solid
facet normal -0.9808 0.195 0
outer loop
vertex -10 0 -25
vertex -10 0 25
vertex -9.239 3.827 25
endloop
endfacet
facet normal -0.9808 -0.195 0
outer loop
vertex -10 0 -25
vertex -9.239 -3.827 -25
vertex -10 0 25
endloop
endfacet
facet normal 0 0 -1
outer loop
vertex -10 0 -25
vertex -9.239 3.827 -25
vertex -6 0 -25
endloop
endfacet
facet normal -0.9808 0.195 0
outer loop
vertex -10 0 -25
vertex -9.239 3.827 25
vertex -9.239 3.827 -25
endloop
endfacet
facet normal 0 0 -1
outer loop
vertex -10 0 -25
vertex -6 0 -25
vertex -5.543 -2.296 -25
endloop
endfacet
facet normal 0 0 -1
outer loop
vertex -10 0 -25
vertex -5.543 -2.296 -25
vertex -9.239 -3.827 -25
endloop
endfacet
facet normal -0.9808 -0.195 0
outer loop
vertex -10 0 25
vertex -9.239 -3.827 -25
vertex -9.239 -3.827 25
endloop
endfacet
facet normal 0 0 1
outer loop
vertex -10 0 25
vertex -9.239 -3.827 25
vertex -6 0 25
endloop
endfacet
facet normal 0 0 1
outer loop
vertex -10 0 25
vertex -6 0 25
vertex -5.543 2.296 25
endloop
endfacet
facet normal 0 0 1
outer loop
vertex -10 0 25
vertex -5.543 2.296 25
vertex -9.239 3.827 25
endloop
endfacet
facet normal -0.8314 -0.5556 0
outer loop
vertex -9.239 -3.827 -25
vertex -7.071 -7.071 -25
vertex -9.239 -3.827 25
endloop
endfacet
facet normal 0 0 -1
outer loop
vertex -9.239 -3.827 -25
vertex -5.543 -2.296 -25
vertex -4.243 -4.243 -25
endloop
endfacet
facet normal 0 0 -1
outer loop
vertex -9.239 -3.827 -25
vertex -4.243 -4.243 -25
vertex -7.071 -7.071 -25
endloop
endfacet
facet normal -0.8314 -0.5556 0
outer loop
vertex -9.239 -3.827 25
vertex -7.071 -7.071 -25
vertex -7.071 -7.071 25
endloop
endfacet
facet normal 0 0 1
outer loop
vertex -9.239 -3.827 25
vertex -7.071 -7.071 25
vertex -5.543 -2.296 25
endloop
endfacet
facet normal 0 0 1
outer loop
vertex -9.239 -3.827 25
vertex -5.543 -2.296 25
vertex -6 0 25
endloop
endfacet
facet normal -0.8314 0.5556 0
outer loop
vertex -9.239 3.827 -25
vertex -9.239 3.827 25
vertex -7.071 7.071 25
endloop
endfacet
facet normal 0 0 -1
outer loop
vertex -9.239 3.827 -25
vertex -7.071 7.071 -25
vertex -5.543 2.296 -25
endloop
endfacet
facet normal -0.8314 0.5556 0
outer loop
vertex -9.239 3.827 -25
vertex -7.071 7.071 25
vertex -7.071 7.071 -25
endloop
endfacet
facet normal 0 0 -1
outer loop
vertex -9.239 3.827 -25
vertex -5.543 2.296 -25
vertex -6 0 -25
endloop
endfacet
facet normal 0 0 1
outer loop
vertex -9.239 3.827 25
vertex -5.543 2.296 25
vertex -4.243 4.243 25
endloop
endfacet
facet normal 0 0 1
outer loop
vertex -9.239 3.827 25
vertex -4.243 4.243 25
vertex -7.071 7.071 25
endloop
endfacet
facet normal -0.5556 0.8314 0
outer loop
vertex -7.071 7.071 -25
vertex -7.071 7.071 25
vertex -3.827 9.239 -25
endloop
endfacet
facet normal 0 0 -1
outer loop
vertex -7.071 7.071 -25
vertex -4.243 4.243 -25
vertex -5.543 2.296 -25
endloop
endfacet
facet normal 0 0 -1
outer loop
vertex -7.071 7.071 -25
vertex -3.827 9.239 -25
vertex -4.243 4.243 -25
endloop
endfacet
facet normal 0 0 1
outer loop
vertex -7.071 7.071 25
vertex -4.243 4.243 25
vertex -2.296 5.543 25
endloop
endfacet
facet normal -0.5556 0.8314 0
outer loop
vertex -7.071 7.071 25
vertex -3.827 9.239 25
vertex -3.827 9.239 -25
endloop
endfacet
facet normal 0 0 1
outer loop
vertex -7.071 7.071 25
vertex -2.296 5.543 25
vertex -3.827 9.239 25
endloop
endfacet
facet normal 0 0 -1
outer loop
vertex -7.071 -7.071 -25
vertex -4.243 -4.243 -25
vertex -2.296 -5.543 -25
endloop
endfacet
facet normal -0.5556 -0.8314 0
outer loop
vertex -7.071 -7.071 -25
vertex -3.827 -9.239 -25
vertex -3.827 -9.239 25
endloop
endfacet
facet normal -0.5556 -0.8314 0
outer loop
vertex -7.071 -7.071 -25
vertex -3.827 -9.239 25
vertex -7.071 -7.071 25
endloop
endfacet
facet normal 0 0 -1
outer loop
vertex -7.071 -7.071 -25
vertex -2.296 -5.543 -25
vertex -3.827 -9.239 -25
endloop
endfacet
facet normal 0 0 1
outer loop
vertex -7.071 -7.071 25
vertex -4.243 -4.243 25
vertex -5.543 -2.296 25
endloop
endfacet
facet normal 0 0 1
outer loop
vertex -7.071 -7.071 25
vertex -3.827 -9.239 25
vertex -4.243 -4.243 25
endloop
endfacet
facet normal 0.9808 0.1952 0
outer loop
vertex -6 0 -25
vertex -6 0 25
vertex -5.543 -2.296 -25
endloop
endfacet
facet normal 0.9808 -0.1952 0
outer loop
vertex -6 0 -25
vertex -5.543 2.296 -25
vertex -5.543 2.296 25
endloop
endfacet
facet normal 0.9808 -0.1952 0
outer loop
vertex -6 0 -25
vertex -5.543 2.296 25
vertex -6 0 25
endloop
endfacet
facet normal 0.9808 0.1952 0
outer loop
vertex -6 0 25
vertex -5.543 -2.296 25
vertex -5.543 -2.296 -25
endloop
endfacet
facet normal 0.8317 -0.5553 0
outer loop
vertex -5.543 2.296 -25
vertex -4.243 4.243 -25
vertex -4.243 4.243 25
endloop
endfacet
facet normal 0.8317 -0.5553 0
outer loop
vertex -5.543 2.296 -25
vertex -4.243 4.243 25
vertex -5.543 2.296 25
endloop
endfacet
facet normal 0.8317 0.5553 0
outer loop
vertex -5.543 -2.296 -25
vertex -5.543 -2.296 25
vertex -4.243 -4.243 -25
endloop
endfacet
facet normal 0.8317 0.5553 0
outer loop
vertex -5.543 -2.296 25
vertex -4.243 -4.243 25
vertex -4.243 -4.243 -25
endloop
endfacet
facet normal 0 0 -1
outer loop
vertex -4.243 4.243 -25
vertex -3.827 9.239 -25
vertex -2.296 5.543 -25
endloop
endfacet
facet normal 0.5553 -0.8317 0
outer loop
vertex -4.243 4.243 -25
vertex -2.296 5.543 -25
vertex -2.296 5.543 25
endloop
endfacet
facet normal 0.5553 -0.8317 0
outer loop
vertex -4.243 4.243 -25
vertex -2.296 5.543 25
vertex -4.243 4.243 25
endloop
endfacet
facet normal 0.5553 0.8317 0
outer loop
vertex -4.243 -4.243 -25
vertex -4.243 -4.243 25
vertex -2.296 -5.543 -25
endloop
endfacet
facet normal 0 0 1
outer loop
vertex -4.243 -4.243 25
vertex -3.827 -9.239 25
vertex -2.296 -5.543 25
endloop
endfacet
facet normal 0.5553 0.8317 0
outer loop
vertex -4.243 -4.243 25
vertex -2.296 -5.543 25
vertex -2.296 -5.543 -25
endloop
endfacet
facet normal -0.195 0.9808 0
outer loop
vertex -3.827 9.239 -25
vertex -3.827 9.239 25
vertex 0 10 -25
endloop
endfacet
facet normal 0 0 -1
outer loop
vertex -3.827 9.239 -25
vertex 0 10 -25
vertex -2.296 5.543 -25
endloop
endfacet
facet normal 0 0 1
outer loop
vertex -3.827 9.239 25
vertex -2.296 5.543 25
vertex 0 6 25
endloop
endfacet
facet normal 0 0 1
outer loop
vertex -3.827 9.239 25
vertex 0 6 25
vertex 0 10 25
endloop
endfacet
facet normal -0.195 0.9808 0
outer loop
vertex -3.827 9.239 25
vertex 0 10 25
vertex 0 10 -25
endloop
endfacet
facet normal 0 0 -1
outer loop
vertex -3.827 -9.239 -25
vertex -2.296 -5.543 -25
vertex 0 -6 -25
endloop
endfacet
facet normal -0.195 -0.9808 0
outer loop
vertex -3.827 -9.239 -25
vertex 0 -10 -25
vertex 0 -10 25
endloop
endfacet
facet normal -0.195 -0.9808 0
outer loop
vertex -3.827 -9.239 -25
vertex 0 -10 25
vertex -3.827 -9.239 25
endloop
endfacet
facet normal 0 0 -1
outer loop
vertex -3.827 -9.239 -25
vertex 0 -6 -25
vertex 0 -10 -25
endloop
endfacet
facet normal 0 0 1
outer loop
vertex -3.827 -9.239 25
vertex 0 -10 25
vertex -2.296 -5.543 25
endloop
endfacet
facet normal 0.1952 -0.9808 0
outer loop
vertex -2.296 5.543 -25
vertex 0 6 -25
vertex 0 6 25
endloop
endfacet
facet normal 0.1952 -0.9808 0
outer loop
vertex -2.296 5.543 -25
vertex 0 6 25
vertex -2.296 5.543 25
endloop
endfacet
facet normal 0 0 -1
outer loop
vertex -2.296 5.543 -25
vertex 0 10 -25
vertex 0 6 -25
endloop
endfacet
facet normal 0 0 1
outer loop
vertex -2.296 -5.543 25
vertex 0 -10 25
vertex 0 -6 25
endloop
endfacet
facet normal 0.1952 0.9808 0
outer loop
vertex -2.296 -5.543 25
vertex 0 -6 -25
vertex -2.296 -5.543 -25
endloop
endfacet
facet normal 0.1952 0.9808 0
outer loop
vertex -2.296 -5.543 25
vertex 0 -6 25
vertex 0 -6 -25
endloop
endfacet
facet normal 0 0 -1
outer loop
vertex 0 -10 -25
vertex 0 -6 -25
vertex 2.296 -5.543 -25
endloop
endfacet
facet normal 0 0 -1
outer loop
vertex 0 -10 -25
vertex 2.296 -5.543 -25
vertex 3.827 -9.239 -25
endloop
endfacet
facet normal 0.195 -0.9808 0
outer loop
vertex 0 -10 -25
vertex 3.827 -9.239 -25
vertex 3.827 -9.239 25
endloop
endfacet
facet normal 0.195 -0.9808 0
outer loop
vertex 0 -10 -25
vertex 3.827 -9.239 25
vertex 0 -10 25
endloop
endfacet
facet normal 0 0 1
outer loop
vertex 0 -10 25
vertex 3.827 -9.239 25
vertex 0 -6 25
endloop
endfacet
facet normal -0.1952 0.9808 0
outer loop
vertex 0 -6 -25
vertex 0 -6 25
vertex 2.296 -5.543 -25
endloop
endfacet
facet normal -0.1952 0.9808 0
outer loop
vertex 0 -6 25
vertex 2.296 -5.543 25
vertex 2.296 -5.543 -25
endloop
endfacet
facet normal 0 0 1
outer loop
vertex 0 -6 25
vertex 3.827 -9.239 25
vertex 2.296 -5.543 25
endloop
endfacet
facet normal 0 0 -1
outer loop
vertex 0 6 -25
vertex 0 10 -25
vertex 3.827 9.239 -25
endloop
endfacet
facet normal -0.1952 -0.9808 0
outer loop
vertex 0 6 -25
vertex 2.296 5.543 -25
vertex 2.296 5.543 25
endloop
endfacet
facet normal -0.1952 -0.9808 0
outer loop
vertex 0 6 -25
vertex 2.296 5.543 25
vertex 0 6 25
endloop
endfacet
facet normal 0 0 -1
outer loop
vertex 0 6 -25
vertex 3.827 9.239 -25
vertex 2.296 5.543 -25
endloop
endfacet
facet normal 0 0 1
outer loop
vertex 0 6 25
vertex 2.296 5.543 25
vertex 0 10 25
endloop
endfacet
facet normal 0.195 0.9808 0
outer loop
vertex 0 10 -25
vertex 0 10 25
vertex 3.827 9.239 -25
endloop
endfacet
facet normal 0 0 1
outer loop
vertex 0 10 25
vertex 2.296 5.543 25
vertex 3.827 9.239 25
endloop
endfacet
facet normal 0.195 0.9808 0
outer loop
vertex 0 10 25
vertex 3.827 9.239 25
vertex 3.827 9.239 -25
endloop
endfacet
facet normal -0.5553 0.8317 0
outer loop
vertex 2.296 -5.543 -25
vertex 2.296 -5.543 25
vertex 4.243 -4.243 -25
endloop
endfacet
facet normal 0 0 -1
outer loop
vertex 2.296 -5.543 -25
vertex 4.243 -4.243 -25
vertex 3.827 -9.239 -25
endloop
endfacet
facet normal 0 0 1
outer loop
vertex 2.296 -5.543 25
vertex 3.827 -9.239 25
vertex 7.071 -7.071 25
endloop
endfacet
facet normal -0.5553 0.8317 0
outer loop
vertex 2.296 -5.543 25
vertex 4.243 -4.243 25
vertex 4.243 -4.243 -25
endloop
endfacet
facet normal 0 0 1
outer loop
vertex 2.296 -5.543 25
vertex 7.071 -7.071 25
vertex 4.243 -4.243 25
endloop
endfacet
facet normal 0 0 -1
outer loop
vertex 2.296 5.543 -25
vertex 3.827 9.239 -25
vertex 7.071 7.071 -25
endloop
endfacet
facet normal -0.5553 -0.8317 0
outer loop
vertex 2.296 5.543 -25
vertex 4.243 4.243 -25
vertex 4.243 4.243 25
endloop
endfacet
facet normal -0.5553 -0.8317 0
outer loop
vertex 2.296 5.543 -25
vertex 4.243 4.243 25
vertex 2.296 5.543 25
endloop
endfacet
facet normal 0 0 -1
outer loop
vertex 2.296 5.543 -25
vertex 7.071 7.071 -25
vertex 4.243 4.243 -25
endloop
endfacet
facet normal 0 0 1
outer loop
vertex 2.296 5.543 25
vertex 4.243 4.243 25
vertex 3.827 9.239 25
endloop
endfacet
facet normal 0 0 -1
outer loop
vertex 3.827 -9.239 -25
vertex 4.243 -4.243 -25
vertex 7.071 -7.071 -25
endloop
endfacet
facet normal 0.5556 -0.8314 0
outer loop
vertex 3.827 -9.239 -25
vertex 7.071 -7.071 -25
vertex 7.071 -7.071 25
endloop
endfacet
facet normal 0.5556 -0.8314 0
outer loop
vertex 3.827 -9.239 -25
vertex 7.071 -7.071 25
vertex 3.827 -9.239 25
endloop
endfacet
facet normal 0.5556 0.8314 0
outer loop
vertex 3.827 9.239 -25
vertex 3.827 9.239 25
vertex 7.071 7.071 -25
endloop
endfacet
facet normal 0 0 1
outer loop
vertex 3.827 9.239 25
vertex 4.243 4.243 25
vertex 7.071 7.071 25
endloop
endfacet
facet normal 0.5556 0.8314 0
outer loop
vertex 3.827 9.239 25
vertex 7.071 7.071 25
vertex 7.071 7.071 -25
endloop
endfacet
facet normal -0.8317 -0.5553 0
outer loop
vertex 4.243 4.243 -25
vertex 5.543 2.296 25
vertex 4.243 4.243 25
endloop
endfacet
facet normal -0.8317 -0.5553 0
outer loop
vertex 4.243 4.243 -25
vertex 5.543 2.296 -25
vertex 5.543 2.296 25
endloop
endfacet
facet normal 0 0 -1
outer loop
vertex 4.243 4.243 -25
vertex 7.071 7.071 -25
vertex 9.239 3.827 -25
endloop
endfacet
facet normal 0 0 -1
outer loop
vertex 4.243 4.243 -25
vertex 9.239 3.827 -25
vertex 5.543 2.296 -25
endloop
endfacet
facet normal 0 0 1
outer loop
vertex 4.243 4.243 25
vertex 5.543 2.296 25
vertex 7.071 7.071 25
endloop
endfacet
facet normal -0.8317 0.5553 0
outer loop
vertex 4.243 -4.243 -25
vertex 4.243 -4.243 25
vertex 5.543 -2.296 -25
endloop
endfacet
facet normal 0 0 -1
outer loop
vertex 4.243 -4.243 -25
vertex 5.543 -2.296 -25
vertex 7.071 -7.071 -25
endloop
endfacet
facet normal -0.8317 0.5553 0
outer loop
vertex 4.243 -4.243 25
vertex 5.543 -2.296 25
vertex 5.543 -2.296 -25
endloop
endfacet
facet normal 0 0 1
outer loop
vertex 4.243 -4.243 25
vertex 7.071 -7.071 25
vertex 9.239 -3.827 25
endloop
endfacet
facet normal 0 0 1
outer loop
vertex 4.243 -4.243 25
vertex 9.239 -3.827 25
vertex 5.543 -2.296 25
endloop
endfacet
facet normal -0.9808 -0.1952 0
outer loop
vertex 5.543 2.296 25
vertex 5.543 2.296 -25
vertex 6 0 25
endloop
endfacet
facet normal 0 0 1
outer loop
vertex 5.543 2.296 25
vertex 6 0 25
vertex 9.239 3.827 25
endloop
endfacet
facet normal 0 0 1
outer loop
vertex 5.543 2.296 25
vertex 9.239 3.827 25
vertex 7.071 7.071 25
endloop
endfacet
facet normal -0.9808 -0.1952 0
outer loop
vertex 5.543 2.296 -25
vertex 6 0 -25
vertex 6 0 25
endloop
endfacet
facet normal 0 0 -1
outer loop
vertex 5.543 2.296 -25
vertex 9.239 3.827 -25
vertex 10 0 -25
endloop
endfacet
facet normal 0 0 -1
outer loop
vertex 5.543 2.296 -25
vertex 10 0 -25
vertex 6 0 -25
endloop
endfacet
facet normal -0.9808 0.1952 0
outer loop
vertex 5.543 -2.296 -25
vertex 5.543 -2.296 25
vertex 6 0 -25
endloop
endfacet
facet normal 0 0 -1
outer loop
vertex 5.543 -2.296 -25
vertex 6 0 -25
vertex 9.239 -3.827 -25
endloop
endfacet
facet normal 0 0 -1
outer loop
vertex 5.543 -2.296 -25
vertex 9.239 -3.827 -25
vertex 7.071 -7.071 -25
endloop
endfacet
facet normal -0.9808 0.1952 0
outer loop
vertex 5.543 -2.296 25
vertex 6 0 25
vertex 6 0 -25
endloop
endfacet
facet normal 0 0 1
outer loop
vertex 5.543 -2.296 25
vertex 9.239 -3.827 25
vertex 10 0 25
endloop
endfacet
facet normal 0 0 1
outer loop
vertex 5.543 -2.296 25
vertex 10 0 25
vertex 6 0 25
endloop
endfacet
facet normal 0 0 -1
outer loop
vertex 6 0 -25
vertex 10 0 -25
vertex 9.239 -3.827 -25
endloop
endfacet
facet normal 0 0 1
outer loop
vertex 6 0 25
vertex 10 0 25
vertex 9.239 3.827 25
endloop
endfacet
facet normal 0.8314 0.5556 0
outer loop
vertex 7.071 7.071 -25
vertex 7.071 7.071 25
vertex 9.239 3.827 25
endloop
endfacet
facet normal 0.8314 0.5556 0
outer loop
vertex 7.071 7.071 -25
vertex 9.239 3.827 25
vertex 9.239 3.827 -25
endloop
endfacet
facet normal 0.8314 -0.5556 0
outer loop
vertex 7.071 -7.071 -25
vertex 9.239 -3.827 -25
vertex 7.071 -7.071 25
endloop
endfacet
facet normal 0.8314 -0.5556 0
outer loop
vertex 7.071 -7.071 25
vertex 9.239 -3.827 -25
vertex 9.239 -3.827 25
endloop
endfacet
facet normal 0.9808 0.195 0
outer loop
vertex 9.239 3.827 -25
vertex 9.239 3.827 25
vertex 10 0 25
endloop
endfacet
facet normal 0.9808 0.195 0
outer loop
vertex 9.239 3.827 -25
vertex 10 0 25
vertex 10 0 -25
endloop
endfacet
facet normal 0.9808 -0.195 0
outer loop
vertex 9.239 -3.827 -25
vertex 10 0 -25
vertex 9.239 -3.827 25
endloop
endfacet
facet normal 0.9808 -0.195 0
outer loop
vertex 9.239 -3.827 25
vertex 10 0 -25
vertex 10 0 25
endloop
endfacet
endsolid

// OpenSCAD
// Start: lazy_union
default_5_default_5();
// End: lazy_union

// Modules.

// 'PartMaterial undef-default - default 5.0'
module default_5_default_5() {
  // 'None : _combine_solids_and_holes'
  union() {
    // '_combine_solids_and_holes'
    difference() {
      // 'default : _combine_solids_and_holes'
      union() {
        // 'outer'
        multmatrix(m=[[1.0, 0.0, 0.0, 0.0], [-0.0, -1.0, -0.0, -0.0], [-0.0, -0.0, -1.0, 25.0], [0.0, 0.0, 0.0, 1.0]]) {
          // 'outer : _combine_solids_and_holes'
          union() {
            // 'pie : _combine_solids_and_holes'
            union() {
              // 'pie'
              polyhedron(points=[[0.0, 0.0, 0.0], [0.0, 0.0, 50.0], [10.0, 0.0, 50.0], [10.0, 0.0, 0.0], [0.0, 0.0, 0.0], [0.0, 0.0, 50.0], [9.238795325112868, 3.826834323650898, 50.0], [9.238795325112868, 3.826834323650898, 0.0], [0.0, 0.0, 0.0], [0.0, 0.0, 50.0], [7.0710678118654755, 7.0710678118654755, 50.0], [7.0710678118654755, 7.0710678118654755, 0.0], [0.0, 0.0, 0.0], [0.0, 0.0, 50.0], [3.8268343236508984, 9.238795325112868, 50.0], [3.8268343236508984, 9.238795325112868, 0.0], [0.0, 0.0, 0.0], [0.0, 0.0, 50.0], [0.0, 10.0, 50.0], [0.0, 10.0, 0.0], [0.0, 0.0, 0.0], [0.0, 0.0, 50.0], [-3.826834323650897, 9.238795325112868, 50.0], [-3.826834323650897, 9.238795325112868, 0.0], [0.0, 0.0, 0.0], [0.0, 0.0, 50.0], [-7.071067811865475, 7.0710678118654755, 50.0], [-7.071067811865475, 7.0710678118654755, 0.0], [0.0, 0.0, 0.0], [0.0, 0.0, 50.0], [-9.238795325112868, 3.826834323650899, 50.0], [-9.238795325112868, 3.826834323650899, 0.0], [0.0, 0.0, 0.0], [0.0, 0.0, 50.0], [-10.0, 0.0, 50.0], [-10.0, 0.0, 0.0], [0.0, 0.0, 0.0], [0.0, 0.0, 50.0], [-9.238795325112868, -3.8268343236508966, 50.0], [-9.238795325112868, -3.8268343236508966, 0.0], [0.0, 0.0, 0.0], [0.0, 0.0, 50.0], [-7.071067811865477, -7.071067811865475, 50.0], [-7.071067811865477, -7.071067811865475, 0.0], [0.0, 0.0, 0.0], [0.0, 0.0, 50.0], [-3.8268343236509033, -9.238795325112864, 50.0], [-3.8268343236509033, -9.238795325112864, 0.0], [0.0, 0.0, 0.0], [0.0, 0.0, 50.0], [0.0, -10.0, 50.0], [0.0, -10.0, 0.0], [0.0, 0.0, 0.0], [0.0, 0.0, 50.0], [3.8268343236509, -9.238795325112866, 50.0], [3.8268343236509, -9.238795325112866, 0.0], [0.0, 0.0, 0.0], [0.0, 0.0, 50.0], [7.071067811865474, -7.071067811865477, 50.0], [7.071067811865474, -7.071067811865477, 0.0], [0.0, 0.0, 0.0], [0.0, 0.0, 50.0], [9.238795325112864, -3.826834323650904, 50.0], [9.238795325112864, -3.826834323650904, 0.0], [0.0, 0.0, 0.0], [0.0, 0.0, 50.0], [10.0, 0.0, 50.0], [10.0, 0.0, 0.0]], faces=[[0, 4, 5, 1], [1, 5, 6, 2], [2, 6, 7, 3], [3, 7, 4, 0], [4, 8, 9, 5], [5, 9, 10, 6], [6, 10, 11, 7], [7, 11, 8, 4], [8, 12, 13, 9], [9, 13, 14, 10], [10, 14, 15, 11], [11, 15, 12, 8], [12, 16, 17, 13], [13, 17, 18, 14], [14, 18, 19, 15], [15, 19, 16, 12], [16, 20, 21, 17], [17, 21, 22, 18], [18, 22, 23, 19], [19, 23, 20, 16], [20, 24, 25, 21], [21, 25, 26, 22], [22, 26, 27, 23], [23, 27, 24, 20], [24, 28, 29, 25], [25, 29, 30, 26], [26, 30, 31, 27], [27, 31, 28, 24], [28, 32, 33, 29], [29, 33, 34, 30], [30, 34, 35, 31], [31, 35, 32, 28], [32, 36, 37, 33], [33, 37, 38, 34], [34, 38, 39, 35], [35, 39, 36, 32], [36, 40, 41, 37], [37, 41, 42, 38], [38, 42, 43, 39], [39, 43, 40, 36], [40, 44, 45, 41], [41, 45, 46, 42], [42, 46, 47, 43], [43, 47, 44, 40], [44, 48, 49, 45], [45, 49, 50, 46], [46, 50, 51, 47], [47, 51, 48, 44], [48, 52, 53, 49], [49, 53, 54, 50], [50, 54, 55, 51], [51, 55, 52, 48], [52, 56, 57, 53], [53, 57, 58, 54], [54, 58, 59, 55], [55, 59, 56, 52], [56, 60, 61, 57], [57, 61, 62, 58], [58, 62, 63, 59], [59, 63, 60, 56], [60, 64, 65, 61], [61, 65, 66, 62], [62, 66, 67, 63], [63, 67, 64, 60], [64, 0, 1, 65], [65, 1, 2, 66], [66, 2, 3, 67], [67, 3, 0, 64]], convexity=10);
            }
          }
        }
      }
      // 'default'
      multmatrix(m=[[1.0, 0.0, 0.0, 0.0], [-0.0, -1.0, -0.0, -0.0], [-0.0, -0.0, -1.0, 25.005], [0.0, 0.0, 0.0, 1.0]]) {
        // 'inner : _combine_solids_and_holes'
        union() {
          // 'pie : _combine_solids_and_holes'
          union() {
            // 'pie'
            polyhedron(points=[[0.0, 0.0, 0.0], [0.0, 0.0, 50.01], [6.0, 0.0, 50.01], [6.0, 0.0, 0.0], [0.0, 0.0, 0.0], [0.0, 0.0, 50.01], [5.54327719506772, 2.2961005941905386, 50.01], [5.54327719506772, 2.2961005941905386, 0.0], [0.0, 0.0, 0.0], [0.0, 0.0, 50.01], [4.242640687119286, 4.242640687119286, 50.01], [4.242640687119286, 4.242640687119286, 0.0], [0.0, 0.0, 0.0], [0.0, 0.0, 50.01], [2.296100594190539, 5.54327719506772, 50.01], [2.296100594190539, 5.54327719506772, 0.0], [0.0, 0.0, 0.0], [0.0, 0.0, 50.01], [0.0, 6.0, 50.01], [0.0, 6.0, 0.0], [0.0, 0.0, 0.0], [0.0, 0.0, 50.01], [-2.2961005941905386, 5.54327719506772, 50.01], [-2.2961005941905386, 5.54327719506772, 0.0], [0.0, 0.0, 0.0], [0.0, 0.0, 50.01], [-4.242640687119285, 4.242640687119286, 50.01], [-4.242640687119285, 4.242640687119286, 0.0], [0.0, 0.0, 0.0], [0.0, 0.0, 50.01], [-5.54327719506772, 2.2961005941905395, 50.01], [-5.54327719506772, 2.2961005941905395, 0.0], [0.0, 0.0, 0.0], [0.0, 0.0, 50.01], [-6.0, 0.0, 50.01], [-6.0, 0.0, 0.0], [0.0, 0.0, 0.0], [0.0, 0.0, 50.01], [-5.543277195067721, -2.296100594190538, 50.01], [-5.543277195067721, -2.296100594190538, 0.0], [0.0, 0.0, 0.0], [0.0, 0.0, 50.01], [-4.242640687119286, -4.242640687119285, 50.01], [-4.242640687119286, -4.242640687119285, 0.0], [0.0, 0.0, 0.0], [0.0, 0.0, 50.01], [-2.296100594190542, -5.543277195067719, 50.01], [-2.296100594190542, -5.543277195067719, 0.0], [0.0, 0.0, 0.0], [0.0, 0.0, 50.01], [0.0, -6.0, 50.01], [0.0, -6.0, 0.0], [0.0, 0.0, 0.0], [0.0, 0.0, 50.01], [2.29610059419054, -5.54327719506772, 50.01], [2.29610059419054, -5.54327719506772, 0.0], [0.0, 0.0, 0.0], [0.0, 0.0, 50.01], [4.242640687119284, -4.242640687119286, 50.01], [4.242640687119284, -4.242640687119286, 0.0], [0.0, 0.0, 0.0], [0.0, 0.0, 50.01], [5.543277195067719, -2.296100594190542, 50.01], [5.543277195067719, -2.296100594190542, 0.0], [0.0, 0.0, 0.0], [0.0, 0.0, 50.01], [6.0, 0.0, 50.01], [6.0, 0.0, 0.0]], faces=[[0, 4, 5, 1], [1, 5, 6, 2], [2, 6, 7, 3], [3, 7, 4, 0], [4, 8, 9, 5], [5, 9, 10, 6], [6, 10, 11, 7], [7, 11, 8, 4], [8, 12, 13, 9], [9, 13, 14, 10], [10, 14, 15, 11], [11, 15, 12, 8], [12, 16, 17, 13], [13, 17, 18, 14], [14, 18, 19, 15], [15, 19, 16, 12], [16, 20, 21, 17], [17, 21, 22, 18], [18, 22, 23, 19], [19, 23, 20, 16], [20, 24, 25, 21], [21, 25, 26, 22], [22, 26, 27, 23], [23, 27, 24, 20], [24, 28, 29, 25], [25, 29, 30, 26], [26, 30, 31, 27], [27, 31, 28, 24], [28, 32, 33, 29], [29, 33, 34, 30], [30, 34, 35, 31], [31, 35, 32, 28], [32, 36, 37, 33], [33, 37, 38, 34], [34, 38, 39, 35], [35, 39, 36, 32], [36, 40, 41, 37], [37, 41, 42, 38], [38, 42, 43, 39], [39, 43, 40, 36], [40, 44, 45, 41], [41, 45, 46, 42], [42, 46, 47, 43], [43, 47, 44, 40], [44, 48, 49, 45], [45, 49, 50, 46], [46, 50, 51, 47], [47, 51, 48, 44], [48, 52, 53, 49], [49, 53, 54, 50], [50, 54, 55, 51], [51, 55, 52, 48], [52, 56, 57, 53], [53, 57, 58, 54], [54, 58, 59, 55], [55, 59, 56, 52], [56, 60, 61, 57], [57, 61, 62, 58], [58, 62, 63, 59], [59, 63, 60, 56], [60, 64, 65, 61], [61, 65, 66, 62], [62, 66, 67, 63], [63, 67, 64, 60], [64, 0, 1, 65], [65, 1, 2, 66], [66, 2, 3, 67], [67, 3, 0, 64]], convexity=10);
          }
        }
      }
    }
  }
} // end module default_5_default_5
